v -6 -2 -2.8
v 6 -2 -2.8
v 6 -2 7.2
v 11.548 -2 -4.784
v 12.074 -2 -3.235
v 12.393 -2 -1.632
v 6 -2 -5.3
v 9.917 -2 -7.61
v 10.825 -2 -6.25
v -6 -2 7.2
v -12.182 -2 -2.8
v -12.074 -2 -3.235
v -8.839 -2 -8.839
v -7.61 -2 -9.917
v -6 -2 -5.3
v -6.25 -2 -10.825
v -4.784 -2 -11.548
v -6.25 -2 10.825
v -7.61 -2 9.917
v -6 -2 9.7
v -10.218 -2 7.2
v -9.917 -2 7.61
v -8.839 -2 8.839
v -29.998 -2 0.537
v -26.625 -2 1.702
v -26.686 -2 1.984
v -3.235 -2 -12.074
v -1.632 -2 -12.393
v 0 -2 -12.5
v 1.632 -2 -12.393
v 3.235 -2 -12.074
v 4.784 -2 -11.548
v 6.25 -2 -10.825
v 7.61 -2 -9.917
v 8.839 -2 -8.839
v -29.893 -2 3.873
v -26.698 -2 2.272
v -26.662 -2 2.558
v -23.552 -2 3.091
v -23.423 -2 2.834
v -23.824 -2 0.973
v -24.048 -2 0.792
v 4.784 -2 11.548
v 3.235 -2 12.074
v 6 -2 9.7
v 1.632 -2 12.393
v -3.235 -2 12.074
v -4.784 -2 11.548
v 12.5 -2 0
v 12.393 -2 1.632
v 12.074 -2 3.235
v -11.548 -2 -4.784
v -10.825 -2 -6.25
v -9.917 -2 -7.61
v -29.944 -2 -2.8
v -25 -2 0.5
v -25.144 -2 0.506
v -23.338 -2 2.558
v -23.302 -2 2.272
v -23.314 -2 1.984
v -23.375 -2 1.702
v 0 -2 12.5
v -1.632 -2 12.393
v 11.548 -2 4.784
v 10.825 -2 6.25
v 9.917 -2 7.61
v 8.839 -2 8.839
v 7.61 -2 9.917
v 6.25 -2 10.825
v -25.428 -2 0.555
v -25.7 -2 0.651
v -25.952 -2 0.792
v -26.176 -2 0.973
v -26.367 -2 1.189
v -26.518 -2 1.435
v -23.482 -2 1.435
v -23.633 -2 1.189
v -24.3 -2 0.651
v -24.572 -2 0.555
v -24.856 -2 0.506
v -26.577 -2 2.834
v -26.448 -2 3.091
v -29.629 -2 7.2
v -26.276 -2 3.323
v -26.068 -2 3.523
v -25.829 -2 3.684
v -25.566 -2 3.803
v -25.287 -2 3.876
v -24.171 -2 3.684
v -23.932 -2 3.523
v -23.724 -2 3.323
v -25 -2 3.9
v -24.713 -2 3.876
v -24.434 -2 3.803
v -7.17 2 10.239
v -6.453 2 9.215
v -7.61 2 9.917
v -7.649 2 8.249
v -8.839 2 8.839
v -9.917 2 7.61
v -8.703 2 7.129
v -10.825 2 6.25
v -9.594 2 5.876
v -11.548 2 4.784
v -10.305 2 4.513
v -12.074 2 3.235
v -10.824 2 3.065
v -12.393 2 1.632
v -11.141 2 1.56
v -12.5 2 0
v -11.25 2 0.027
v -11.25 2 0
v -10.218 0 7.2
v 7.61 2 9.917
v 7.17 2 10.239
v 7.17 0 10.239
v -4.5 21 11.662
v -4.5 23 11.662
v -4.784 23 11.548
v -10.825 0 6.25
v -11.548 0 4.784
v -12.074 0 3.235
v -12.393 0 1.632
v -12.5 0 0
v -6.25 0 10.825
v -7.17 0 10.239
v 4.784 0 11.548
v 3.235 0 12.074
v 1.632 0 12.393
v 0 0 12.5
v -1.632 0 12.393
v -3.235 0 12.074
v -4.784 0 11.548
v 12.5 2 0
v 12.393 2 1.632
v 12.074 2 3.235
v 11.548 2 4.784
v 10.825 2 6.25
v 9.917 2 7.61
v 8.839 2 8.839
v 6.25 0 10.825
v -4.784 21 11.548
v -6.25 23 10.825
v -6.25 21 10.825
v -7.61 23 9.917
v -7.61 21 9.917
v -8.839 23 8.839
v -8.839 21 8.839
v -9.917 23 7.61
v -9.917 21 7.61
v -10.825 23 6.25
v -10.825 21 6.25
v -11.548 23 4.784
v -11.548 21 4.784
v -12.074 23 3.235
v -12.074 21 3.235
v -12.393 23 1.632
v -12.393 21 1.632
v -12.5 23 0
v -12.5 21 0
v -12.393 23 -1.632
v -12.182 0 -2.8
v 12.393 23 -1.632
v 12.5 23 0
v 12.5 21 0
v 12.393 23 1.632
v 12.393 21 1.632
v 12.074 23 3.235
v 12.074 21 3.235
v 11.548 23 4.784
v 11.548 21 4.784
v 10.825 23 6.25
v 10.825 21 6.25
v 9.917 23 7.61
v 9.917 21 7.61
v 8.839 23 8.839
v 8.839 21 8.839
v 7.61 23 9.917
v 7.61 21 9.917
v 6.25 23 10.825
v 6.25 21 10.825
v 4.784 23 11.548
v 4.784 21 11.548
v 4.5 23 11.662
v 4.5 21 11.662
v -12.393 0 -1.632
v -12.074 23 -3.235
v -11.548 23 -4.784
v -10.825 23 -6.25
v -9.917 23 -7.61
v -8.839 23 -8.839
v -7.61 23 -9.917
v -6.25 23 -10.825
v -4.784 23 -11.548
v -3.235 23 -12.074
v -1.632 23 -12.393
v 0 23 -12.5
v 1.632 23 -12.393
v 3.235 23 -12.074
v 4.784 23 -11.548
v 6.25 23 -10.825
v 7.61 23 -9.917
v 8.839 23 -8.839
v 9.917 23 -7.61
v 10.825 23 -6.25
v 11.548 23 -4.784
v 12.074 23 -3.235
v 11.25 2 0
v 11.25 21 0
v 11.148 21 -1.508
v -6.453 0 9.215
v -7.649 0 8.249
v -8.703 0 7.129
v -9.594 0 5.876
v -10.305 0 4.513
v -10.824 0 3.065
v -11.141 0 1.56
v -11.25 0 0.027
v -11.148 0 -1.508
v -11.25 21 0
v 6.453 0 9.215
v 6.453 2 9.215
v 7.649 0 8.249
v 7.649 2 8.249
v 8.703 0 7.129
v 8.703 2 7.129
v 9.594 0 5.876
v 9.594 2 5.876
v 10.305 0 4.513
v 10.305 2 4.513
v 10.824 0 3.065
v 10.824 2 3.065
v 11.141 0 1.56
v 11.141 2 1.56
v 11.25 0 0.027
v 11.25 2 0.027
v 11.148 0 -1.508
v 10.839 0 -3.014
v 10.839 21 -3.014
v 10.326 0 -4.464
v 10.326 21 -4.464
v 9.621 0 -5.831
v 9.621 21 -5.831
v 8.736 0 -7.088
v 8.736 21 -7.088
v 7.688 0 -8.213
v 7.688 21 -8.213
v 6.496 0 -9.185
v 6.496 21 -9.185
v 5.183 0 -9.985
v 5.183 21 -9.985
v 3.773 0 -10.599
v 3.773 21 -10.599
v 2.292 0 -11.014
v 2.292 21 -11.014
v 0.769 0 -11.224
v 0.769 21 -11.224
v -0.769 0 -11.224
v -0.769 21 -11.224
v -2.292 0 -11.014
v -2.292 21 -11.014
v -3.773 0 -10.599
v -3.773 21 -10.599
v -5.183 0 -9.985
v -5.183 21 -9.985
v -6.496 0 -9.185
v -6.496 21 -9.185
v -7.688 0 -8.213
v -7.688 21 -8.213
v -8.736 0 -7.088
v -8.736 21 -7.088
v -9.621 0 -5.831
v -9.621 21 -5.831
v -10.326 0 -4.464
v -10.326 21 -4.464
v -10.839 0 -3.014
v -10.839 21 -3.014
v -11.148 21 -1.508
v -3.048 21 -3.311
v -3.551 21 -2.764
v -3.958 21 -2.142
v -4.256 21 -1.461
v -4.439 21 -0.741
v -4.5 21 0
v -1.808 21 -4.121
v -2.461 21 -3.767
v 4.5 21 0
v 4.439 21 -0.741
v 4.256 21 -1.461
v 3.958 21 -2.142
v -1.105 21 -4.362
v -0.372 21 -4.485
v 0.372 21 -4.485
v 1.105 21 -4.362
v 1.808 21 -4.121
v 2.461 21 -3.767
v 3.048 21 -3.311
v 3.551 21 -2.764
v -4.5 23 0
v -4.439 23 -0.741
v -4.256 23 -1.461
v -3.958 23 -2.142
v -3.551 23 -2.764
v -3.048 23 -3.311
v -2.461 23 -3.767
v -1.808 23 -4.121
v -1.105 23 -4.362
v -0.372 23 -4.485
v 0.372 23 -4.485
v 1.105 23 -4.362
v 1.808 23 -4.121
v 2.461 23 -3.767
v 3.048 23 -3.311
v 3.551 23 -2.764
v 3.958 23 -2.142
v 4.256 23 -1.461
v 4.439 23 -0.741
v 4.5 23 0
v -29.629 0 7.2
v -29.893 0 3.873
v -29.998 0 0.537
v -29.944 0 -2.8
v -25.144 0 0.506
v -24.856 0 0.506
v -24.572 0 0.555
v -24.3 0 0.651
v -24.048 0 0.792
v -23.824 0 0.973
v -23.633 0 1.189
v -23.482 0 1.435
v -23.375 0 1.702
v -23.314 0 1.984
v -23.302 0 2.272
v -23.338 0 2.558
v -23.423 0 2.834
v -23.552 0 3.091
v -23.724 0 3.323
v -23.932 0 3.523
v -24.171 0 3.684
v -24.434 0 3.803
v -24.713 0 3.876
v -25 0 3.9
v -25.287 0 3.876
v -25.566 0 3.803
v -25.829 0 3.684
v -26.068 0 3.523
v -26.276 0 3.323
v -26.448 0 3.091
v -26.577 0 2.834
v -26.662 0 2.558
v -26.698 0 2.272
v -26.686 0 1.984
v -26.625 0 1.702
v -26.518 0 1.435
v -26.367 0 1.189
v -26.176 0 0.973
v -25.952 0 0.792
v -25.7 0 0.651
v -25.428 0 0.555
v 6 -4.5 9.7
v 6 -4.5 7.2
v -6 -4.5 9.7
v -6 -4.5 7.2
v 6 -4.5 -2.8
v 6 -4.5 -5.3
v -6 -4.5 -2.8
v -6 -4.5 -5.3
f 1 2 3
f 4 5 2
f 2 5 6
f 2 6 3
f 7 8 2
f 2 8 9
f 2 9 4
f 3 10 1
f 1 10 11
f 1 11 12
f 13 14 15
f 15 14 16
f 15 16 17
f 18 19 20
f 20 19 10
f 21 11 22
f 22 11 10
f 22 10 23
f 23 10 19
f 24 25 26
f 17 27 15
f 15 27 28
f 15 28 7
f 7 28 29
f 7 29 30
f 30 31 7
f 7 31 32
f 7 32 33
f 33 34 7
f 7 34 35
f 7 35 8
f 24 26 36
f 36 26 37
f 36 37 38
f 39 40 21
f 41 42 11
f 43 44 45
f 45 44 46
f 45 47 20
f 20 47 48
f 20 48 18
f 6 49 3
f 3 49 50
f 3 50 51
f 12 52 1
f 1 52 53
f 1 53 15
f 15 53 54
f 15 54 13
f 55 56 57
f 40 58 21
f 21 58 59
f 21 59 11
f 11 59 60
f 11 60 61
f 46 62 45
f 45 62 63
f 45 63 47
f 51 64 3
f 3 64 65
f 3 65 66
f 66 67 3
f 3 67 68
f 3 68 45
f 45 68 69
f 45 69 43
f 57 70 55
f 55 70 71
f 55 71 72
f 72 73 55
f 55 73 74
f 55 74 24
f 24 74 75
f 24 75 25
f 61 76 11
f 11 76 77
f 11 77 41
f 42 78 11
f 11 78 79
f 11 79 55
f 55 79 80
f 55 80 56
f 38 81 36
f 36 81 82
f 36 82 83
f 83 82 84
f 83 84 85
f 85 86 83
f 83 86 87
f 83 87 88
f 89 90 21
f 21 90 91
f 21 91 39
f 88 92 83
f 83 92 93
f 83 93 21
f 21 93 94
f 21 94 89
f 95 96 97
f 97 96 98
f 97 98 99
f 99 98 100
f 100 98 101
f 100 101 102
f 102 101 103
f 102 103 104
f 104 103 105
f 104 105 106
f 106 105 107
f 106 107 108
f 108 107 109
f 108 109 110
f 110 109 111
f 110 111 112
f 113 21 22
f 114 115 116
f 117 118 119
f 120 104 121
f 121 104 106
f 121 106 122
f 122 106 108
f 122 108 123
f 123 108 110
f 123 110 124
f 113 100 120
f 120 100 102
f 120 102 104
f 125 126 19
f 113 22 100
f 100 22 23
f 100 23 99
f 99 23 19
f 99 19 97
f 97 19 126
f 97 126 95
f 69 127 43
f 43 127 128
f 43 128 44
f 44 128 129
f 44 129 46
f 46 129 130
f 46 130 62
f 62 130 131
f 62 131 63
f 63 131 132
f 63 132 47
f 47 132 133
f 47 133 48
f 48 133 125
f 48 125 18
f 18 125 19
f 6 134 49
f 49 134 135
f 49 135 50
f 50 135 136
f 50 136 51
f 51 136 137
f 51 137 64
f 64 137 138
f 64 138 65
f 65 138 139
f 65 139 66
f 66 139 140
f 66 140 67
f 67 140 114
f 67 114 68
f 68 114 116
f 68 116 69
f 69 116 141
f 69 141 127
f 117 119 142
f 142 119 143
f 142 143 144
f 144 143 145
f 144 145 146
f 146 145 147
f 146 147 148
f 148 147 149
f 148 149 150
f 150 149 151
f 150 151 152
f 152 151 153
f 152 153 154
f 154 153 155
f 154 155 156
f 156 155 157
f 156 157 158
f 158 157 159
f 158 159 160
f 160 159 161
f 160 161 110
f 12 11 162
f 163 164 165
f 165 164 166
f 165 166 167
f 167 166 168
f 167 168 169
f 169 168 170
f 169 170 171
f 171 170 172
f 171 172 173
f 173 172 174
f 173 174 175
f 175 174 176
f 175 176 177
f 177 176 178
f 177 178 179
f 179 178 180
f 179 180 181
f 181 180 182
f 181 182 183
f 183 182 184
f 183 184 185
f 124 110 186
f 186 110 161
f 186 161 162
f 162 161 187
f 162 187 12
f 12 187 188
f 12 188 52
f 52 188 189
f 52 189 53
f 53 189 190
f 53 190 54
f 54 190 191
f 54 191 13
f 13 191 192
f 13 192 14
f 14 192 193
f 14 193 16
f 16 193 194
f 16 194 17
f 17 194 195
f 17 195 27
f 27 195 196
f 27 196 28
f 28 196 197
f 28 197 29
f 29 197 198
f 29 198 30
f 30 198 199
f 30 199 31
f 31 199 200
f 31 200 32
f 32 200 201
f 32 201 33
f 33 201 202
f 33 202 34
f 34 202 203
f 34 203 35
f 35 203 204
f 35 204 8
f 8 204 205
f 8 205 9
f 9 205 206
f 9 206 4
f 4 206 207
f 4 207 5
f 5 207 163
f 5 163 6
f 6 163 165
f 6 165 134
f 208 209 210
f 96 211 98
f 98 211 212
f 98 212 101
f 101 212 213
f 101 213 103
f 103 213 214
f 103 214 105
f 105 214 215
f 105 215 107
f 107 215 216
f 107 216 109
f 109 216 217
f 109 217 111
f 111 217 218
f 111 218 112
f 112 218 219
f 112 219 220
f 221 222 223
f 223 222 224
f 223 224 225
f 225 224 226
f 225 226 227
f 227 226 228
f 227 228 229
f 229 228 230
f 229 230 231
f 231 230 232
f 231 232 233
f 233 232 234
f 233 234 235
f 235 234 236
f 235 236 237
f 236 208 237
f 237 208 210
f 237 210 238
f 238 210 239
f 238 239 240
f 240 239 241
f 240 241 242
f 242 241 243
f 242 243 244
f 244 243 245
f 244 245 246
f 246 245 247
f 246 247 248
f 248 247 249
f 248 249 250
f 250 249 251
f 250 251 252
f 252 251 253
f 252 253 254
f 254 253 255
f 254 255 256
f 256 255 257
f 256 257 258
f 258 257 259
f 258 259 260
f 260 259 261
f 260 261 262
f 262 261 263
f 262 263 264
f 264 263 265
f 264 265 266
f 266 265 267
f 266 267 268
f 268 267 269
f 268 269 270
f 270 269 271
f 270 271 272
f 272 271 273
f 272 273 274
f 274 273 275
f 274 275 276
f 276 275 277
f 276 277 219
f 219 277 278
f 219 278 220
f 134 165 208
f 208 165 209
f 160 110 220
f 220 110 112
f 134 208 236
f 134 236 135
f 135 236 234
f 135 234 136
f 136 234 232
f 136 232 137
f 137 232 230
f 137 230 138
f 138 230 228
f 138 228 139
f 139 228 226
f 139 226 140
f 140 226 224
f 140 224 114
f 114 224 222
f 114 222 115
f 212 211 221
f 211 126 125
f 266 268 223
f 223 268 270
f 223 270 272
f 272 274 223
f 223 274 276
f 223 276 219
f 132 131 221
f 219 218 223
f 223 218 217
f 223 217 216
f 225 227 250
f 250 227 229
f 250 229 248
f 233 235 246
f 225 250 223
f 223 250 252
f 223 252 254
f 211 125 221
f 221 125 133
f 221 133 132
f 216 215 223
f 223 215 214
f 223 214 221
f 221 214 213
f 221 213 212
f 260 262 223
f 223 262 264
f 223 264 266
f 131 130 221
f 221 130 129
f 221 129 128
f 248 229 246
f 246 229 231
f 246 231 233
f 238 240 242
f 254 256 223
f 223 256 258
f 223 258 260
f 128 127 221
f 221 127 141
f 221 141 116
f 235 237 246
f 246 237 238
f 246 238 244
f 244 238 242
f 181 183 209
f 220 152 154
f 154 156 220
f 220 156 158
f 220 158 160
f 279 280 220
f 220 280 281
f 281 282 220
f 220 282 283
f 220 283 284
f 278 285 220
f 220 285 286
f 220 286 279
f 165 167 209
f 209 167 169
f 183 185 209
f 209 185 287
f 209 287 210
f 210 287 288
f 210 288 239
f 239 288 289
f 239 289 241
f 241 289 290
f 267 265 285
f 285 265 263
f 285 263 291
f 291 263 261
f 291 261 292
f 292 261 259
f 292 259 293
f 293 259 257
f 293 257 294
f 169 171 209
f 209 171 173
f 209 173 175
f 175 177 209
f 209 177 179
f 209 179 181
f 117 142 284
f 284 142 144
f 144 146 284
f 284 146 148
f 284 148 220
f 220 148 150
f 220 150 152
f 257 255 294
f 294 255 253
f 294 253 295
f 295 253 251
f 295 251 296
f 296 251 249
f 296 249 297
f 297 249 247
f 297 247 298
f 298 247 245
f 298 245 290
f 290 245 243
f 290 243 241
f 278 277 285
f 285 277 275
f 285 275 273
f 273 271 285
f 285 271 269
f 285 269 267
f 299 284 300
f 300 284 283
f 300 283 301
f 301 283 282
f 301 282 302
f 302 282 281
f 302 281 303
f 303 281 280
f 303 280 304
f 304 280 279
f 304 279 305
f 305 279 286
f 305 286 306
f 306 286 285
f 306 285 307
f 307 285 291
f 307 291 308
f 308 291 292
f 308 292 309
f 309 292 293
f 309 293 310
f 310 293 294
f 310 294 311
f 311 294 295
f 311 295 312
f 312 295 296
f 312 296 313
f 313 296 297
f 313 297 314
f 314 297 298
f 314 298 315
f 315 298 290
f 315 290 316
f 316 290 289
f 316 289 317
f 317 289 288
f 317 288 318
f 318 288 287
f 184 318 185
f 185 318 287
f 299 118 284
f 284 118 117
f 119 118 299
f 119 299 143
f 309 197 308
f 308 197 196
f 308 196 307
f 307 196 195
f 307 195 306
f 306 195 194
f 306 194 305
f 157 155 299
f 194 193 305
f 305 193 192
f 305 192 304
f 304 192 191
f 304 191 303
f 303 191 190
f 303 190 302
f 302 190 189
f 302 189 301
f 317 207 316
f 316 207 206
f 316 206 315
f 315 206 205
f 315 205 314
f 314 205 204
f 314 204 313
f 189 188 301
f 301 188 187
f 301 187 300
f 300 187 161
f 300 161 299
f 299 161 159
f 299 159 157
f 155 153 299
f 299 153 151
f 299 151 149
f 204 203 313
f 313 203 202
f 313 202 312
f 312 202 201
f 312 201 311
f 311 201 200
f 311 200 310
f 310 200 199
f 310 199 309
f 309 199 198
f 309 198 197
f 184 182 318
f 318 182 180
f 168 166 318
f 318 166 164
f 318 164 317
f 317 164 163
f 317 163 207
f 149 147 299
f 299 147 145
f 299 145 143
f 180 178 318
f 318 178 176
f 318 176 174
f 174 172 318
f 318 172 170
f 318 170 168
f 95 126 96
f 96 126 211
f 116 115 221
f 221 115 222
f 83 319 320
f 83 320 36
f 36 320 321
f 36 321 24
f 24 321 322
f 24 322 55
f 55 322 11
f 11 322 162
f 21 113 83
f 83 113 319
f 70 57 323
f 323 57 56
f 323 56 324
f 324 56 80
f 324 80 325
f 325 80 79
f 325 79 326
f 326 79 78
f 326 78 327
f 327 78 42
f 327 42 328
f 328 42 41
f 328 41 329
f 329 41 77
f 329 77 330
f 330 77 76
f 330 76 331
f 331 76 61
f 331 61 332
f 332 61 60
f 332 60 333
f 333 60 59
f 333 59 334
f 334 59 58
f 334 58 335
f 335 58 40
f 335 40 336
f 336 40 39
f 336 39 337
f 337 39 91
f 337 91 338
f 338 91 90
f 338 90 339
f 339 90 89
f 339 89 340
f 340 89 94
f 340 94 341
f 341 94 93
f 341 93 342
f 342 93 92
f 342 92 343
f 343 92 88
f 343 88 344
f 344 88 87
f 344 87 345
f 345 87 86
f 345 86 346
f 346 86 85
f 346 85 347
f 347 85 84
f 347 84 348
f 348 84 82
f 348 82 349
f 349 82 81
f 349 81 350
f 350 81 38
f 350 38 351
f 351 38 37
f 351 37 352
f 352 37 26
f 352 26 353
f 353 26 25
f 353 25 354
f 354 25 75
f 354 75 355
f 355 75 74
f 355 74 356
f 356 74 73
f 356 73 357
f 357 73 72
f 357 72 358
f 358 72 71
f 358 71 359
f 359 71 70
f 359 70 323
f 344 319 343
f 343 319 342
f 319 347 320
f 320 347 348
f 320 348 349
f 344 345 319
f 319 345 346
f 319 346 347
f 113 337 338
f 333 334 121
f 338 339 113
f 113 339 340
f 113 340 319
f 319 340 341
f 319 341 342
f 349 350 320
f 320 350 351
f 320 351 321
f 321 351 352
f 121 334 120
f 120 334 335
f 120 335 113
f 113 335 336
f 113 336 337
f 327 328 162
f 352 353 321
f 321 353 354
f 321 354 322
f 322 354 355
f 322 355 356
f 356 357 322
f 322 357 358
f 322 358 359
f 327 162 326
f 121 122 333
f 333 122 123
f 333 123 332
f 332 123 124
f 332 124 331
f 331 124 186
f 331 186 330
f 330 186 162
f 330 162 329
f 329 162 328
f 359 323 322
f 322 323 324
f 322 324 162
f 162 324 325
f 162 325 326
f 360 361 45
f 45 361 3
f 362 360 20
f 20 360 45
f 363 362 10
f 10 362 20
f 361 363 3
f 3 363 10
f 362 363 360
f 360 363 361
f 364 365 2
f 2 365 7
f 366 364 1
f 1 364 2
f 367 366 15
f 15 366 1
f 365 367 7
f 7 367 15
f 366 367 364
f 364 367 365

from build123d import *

# Parameters (mm, degrees)
CROQUIS1_R              = 12.5
CROQUIS1_R_2            = 11.25
SALIENTE_EXTRUIR1_DEPTH = 21
CORTAR_EXTRUIR1_DEPTH   = 19
CROQUIS3_R              = 12.5
SALIENTE_EXTRUIR2_DEPTH = 2
SALIENTE_EXTRUIR3_DEPTH = 2
CORTAR_EXTRUIR2_DEPTH   = 2
CROQUIS6_R              = 1.7
SALIENTE_EXTRUIR4_DEPTH = 2
CROQUIS8_W              = 12
CROQUIS8_H              = 2.5
SALIENTE_EXTRUIR5_DEPTH = 2.5


with BuildPart() as part:
    # Croquis1 → Saliente-Extruir1 (new body)
    with BuildSketch(Plane(origin=(0, 0, 0), x_dir=(1, 0, 0), z_dir=(0, 1, 0))):
        Circle(CROQUIS1_R)
        Circle(CROQUIS1_R_2, mode=Mode.SUBTRACT)
    extrude(amount=SALIENTE_EXTRUIR1_DEPTH)

    # Croquis2 → Cortar-Extruir1 (cut)
    with BuildSketch(Plane(origin=(0, 21, 0), x_dir=(1, 0, 0), z_dir=(0, 1, 0))):
        with BuildLine():
            Line((-12.5, 0), (12.5, 0))
            ThreePointArc((12.5, 0), (0, -12.5), (-12.5, 0))
        make_face()
    extrude(amount=-CORTAR_EXTRUIR1_DEPTH, mode=Mode.SUBTRACT)

    # Croquis3 → Saliente-Extruir2 (add)
    with BuildSketch(Plane.XZ):
        Circle(CROQUIS3_R)
    extrude(amount=SALIENTE_EXTRUIR2_DEPTH)

    # Croquis4 → Saliente-Extruir3 (add)
    with BuildSketch(Plane(origin=(0, 21, 0), x_dir=(1, 0, 0), z_dir=(0, 1, 0))):
        with BuildLine():
            Line((-4.5, 0), (-4.5, -11.66190379))
            ThreePointArc((-4.5, -11.66190379), (0, 12.5), (4.5, -11.66190379))
            Line((4.5, -11.66190379), (4.5, 0))
            ThreePointArc((4.5, 0), (0, 4.5), (-4.5, 0))
        make_face()
    extrude(amount=SALIENTE_EXTRUIR3_DEPTH)

    # Croquis5 → Cortar-Extruir2 (cut)
    with BuildSketch(Plane(origin=(0, 2, 0), x_dir=(1, 0, 0), z_dir=(0, 1, 0))):
        with BuildLine():
            Line((0, 0), (-7.169705454, -10.239400554))
            ThreePointArc((-7.169705454, -10.239400554), (0, -12.5), (7.169705454, -10.239400554))
            Line((7.169705454, -10.239400554), (0, 0))
        make_face()
    extrude(amount=-CORTAR_EXTRUIR2_DEPTH, mode=Mode.SUBTRACT)

    # Croquis6 → Saliente-Extruir4 (add)
    with BuildSketch(Plane(origin=(0, 0, 0), x_dir=(1, 0, 0), z_dir=(0, 1, 0))):
        with BuildLine():
            Line((-29.628729703, -7.2), (-10.218121158, -7.2))
            ThreePointArc((-10.218121158, -7.2), (-12.265620132, -2.409266026), (-12.182364303, 2.8))
            Line((-12.182364303, 2.8), (-29.943977582, 2.8))
            ThreePointArc((-29.943977582, 2.8), (-29.965242476, -2.205639433), (-29.628729703, -7.2))
        make_face()
        with Locations((-25, -2.2)):
            Circle(CROQUIS6_R, mode=Mode.SUBTRACT)
    extrude(amount=-SALIENTE_EXTRUIR4_DEPTH)

    # Croquis8 → Saliente-Extruir5 (add)
    with BuildSketch(Plane.XZ.offset(2)):
        with Locations((0, 8.45)):
            Rectangle(CROQUIS8_W, CROQUIS8_H)
        with Locations((0, -4.05)):
            Rectangle(CROQUIS8_W, CROQUIS8_H)
    extrude(amount=SALIENTE_EXTRUIR5_DEPTH)


solid = part.part
